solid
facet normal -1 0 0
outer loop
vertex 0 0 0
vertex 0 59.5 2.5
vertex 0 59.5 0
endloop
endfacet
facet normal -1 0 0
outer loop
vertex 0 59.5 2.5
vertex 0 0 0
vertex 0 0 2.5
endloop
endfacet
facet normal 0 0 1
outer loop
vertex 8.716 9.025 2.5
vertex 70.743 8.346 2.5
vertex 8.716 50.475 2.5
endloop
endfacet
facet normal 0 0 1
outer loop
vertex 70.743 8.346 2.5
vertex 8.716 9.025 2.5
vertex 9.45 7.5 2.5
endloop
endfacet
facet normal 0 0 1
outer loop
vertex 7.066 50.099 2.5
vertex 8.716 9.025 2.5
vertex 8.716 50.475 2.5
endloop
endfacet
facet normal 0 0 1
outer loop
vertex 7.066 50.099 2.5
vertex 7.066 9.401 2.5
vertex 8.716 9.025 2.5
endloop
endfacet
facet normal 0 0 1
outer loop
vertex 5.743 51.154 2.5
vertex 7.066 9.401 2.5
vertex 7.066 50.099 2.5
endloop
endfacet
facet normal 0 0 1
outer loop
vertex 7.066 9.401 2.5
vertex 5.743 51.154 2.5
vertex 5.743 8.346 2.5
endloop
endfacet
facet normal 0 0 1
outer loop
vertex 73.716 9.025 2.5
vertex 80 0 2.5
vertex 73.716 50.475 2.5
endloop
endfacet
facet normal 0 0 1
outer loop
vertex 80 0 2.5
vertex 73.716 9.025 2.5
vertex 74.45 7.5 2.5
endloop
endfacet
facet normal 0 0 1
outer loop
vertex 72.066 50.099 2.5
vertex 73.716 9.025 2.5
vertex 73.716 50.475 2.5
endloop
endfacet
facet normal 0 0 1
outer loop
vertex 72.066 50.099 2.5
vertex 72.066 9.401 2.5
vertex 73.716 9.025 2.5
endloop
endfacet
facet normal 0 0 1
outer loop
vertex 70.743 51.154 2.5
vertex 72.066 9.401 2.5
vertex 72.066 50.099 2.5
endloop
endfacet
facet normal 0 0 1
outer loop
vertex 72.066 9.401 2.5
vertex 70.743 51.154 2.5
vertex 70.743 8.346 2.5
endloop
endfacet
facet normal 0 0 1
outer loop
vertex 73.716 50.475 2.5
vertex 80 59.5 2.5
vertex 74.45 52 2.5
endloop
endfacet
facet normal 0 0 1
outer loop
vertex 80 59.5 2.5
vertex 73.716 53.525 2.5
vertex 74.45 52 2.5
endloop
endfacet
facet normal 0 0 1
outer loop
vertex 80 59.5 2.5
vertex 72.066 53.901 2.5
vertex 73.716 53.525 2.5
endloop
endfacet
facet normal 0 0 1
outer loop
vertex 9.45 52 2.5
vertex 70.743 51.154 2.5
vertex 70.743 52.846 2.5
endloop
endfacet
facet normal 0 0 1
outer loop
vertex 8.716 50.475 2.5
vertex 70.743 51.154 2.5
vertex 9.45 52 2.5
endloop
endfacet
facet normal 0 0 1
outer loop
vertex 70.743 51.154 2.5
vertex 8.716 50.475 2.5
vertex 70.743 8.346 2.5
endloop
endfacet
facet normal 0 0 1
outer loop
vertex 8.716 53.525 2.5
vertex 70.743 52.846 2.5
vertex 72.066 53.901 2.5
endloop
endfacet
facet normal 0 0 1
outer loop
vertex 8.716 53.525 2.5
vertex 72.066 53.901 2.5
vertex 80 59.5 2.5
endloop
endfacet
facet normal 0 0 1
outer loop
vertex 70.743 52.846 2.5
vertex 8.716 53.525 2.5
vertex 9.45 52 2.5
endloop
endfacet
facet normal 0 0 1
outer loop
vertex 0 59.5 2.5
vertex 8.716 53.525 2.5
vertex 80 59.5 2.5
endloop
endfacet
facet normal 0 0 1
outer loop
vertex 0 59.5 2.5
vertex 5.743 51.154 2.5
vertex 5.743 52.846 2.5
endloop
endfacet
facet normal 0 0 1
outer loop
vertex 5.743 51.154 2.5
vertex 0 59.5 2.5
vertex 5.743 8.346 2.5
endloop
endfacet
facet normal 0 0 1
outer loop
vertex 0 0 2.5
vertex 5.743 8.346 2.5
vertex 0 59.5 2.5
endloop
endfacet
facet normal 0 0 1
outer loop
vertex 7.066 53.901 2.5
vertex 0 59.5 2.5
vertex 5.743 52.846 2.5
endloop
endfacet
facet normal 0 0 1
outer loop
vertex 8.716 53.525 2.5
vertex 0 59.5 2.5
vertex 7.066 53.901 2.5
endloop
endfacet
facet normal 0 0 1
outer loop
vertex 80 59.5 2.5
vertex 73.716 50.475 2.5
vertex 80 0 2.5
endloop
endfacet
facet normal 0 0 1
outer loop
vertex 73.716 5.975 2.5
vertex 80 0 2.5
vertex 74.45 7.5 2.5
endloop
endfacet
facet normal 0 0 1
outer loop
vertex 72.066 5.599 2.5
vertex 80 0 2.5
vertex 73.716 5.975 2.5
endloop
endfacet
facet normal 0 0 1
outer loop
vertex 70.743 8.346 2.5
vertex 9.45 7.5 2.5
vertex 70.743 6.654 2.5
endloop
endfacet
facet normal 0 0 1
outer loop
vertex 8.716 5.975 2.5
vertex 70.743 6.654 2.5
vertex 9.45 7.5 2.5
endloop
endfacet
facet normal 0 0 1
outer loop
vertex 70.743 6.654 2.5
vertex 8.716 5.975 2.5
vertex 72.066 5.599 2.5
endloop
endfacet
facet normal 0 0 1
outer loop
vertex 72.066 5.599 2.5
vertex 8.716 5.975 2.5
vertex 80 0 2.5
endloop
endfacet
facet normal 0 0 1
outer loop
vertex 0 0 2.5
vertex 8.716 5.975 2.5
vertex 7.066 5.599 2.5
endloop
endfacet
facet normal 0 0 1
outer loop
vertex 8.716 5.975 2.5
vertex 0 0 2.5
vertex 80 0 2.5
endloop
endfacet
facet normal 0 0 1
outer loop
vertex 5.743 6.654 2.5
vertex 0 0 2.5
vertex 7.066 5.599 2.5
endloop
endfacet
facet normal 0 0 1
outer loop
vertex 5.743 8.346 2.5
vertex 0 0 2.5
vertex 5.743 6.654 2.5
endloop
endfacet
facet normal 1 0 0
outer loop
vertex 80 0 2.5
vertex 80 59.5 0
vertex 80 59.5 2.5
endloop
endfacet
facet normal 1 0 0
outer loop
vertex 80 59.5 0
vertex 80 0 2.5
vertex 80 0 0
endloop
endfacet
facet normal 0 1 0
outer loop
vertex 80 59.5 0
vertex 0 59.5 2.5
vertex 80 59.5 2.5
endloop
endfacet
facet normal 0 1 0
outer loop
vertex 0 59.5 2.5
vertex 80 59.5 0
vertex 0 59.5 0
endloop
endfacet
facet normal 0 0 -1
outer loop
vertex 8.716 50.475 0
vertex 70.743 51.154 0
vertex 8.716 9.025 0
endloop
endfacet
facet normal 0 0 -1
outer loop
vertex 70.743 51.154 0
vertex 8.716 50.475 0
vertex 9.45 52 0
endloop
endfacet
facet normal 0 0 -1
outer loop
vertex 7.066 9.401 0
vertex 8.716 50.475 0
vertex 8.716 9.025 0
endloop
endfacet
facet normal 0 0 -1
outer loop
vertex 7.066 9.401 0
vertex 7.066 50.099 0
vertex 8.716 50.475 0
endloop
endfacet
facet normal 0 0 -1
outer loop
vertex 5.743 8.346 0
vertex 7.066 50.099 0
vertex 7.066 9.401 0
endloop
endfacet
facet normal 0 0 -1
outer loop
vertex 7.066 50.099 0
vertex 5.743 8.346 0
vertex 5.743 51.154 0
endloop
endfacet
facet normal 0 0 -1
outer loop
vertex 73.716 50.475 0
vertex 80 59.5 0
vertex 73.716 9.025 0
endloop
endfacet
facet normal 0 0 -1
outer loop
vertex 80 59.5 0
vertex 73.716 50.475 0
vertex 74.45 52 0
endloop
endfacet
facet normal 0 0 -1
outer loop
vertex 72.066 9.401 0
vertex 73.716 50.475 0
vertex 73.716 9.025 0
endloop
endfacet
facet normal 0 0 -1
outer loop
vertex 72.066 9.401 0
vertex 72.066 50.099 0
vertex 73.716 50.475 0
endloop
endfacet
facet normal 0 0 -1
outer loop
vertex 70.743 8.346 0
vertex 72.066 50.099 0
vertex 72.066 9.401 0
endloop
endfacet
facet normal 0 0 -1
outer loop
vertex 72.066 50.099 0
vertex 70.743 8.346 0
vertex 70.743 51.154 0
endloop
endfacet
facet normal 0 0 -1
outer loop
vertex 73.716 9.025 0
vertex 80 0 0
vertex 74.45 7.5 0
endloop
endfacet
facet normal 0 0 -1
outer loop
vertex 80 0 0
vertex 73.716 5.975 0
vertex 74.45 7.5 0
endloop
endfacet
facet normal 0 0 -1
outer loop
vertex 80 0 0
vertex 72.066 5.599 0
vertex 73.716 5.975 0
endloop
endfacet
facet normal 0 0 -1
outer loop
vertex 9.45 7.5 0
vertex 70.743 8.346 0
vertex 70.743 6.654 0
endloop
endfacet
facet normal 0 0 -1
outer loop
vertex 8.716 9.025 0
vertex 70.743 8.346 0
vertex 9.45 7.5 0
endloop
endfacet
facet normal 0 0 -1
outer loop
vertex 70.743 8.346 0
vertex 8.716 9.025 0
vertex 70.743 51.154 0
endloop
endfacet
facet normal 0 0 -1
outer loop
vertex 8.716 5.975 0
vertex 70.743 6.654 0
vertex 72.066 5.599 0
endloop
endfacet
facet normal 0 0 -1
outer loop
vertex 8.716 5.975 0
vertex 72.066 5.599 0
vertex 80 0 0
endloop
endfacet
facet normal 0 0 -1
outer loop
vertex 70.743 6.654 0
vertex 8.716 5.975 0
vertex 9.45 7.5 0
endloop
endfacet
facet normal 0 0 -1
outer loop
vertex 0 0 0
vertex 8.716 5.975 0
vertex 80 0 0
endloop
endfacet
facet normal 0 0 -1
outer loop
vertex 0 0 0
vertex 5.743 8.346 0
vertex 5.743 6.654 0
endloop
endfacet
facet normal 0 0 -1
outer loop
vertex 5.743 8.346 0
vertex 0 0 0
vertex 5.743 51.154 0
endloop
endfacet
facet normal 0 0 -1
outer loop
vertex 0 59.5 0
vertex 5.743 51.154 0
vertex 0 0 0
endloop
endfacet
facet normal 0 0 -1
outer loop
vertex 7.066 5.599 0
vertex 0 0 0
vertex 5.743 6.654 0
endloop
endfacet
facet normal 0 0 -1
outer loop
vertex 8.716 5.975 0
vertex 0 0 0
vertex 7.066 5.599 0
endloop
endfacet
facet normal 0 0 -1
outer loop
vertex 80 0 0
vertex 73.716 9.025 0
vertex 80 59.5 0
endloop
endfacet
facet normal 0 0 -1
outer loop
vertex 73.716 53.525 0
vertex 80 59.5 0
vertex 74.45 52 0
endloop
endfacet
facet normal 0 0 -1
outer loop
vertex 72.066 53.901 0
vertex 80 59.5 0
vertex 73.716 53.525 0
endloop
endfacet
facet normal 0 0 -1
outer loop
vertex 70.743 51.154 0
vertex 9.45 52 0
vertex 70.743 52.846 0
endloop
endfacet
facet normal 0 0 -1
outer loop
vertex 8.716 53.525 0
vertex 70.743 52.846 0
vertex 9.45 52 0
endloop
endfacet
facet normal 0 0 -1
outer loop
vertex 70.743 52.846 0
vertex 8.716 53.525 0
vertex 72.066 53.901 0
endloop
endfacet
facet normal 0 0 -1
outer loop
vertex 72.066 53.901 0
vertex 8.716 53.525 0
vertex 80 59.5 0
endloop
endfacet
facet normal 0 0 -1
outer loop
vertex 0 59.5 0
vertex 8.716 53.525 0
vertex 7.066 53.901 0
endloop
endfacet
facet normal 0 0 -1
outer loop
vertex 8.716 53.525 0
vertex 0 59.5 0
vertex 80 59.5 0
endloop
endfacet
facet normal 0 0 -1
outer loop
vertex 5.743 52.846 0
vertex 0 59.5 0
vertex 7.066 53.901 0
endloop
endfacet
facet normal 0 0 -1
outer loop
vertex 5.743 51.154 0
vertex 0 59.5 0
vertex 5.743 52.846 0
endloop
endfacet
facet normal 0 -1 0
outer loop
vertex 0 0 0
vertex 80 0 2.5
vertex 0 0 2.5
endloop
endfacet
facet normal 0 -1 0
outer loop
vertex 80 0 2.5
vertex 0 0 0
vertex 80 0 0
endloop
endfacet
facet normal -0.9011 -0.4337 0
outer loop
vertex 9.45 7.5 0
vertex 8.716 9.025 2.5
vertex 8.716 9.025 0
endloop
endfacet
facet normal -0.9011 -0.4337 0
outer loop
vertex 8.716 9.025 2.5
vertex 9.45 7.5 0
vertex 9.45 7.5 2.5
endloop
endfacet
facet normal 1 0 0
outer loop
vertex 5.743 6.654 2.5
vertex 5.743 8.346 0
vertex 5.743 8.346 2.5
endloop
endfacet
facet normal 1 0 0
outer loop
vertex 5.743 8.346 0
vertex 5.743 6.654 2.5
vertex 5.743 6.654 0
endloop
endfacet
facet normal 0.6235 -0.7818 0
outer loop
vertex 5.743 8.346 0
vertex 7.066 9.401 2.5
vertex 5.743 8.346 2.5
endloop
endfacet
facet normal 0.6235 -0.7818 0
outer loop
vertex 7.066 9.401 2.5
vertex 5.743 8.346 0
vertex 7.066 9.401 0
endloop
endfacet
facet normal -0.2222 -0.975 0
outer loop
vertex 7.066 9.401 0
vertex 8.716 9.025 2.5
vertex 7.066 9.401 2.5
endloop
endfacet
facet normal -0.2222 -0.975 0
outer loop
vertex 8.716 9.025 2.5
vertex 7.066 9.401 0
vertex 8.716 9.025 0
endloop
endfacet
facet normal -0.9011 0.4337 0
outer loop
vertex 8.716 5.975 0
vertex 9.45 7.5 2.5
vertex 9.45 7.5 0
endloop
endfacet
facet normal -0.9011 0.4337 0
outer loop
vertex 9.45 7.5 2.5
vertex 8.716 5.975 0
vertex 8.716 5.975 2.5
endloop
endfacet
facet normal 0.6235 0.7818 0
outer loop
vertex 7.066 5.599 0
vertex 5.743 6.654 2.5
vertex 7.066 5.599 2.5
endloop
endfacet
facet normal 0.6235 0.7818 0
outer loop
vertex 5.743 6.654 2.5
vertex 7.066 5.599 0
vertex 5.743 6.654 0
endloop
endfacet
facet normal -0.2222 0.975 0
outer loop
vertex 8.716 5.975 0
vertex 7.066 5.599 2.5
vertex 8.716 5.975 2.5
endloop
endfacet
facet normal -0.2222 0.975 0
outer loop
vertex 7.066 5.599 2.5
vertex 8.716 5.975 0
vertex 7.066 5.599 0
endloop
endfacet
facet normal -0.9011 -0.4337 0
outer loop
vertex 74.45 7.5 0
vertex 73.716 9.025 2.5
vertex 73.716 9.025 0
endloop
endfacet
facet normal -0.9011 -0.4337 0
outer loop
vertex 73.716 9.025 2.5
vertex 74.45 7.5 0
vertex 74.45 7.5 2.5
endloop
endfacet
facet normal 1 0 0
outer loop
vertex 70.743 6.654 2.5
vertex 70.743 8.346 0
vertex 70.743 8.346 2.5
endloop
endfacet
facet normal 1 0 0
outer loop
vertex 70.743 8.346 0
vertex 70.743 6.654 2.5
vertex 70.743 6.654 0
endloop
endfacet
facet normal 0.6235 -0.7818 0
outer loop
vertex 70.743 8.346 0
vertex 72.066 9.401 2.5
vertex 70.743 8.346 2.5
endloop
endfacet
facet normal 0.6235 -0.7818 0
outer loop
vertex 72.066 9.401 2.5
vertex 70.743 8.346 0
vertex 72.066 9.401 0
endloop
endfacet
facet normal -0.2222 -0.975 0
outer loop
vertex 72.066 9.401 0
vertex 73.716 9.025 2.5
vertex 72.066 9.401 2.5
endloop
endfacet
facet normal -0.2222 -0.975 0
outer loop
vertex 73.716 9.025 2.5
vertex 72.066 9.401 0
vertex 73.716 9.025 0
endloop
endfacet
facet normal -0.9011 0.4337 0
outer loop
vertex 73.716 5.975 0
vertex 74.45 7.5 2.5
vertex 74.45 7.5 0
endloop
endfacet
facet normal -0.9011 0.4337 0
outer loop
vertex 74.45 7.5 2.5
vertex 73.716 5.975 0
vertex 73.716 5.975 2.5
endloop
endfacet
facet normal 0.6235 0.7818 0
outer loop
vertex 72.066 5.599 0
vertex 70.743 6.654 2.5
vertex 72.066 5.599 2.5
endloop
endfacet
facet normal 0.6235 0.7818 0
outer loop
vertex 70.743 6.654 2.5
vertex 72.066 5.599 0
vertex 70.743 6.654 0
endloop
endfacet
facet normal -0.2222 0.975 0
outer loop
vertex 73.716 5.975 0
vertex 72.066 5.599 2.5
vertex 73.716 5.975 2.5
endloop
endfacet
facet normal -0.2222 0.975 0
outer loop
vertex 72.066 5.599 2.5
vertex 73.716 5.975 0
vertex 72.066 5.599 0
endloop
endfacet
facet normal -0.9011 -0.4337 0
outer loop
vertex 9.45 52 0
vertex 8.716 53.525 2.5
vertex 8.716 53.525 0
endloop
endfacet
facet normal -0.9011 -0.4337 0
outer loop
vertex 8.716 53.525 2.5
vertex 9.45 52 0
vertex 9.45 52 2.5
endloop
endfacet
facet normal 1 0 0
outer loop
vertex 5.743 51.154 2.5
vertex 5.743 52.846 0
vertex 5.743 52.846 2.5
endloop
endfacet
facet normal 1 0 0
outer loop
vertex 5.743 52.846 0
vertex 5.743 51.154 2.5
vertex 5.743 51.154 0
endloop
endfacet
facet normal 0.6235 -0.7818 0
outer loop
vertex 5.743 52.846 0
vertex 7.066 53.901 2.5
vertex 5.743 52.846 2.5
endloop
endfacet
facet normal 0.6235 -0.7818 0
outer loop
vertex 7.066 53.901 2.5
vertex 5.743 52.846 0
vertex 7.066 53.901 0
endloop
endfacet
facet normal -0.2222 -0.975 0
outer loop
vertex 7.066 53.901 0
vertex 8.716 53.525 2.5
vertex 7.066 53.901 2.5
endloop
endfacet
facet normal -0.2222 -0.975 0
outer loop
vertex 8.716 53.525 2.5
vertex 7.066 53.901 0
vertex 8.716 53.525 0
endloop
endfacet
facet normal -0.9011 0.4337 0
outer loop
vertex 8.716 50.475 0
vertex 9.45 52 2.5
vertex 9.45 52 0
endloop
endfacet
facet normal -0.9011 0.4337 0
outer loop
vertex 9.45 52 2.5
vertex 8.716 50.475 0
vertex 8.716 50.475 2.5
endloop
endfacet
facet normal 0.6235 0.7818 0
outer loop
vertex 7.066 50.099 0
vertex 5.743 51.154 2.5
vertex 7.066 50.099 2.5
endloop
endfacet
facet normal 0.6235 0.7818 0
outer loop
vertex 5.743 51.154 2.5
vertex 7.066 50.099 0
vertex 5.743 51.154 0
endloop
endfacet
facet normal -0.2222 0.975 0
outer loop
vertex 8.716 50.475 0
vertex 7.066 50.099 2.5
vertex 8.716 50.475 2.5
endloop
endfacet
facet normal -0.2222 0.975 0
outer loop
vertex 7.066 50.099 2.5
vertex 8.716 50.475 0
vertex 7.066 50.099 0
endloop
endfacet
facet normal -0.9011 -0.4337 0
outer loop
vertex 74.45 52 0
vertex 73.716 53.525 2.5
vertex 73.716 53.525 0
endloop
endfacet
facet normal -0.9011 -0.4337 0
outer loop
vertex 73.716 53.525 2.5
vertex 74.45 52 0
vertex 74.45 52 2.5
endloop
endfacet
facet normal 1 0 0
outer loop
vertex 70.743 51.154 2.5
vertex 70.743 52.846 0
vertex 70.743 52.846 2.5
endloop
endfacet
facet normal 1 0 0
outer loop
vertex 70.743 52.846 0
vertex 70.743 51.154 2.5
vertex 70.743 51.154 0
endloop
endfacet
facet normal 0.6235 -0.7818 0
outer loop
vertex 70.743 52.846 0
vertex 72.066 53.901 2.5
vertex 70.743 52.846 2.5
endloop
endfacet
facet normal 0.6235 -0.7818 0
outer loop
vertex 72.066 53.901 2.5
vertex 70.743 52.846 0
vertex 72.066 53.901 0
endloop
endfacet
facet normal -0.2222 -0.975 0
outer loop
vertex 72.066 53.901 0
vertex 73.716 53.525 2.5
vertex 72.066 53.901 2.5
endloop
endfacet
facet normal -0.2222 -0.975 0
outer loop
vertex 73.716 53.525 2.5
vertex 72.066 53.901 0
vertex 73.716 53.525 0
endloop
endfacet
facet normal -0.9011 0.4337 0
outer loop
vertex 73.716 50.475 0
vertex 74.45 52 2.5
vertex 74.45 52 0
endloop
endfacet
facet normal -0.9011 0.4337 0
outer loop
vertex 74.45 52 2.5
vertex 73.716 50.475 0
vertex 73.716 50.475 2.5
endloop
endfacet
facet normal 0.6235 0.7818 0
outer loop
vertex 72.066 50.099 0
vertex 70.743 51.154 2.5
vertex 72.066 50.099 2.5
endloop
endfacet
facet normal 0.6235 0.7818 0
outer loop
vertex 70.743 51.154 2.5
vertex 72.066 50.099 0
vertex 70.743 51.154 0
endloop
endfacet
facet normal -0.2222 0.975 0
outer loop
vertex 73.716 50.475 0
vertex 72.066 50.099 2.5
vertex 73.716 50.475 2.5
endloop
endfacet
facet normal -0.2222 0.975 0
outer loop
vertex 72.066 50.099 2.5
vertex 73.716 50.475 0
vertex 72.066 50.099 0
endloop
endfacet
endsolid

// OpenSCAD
module hole(
    bracket_width,
    screw_size,
    thickness
) {
    translate([bracket_width / 2, bracket_width / 2, 0]) {
        cylinder(
            h=thickness * 3,
            r1=screw_size / 2,
            r2=screw_size / 2,
            center=true
        );
    }
}

module bottom_plate(
    width,
    length,
    thickness,
    bracket_width,
    screw_size
) {
    difference() {
        cube([width, length, thickness]);
        
        translate([0, 0, 0]) {
            hole(bracket_width, screw_size, thickness);
        }
        
        translate([width - bracket_width, 0, 0]) {
            hole(bracket_width, screw_size, thickness);
        }
        
        translate([0, length - bracket_width, 0]) {
            hole(bracket_width, screw_size, thickness);
        }
        
        translate([width - bracket_width, length - bracket_width, 0]) {
            hole(bracket_width, screw_size, thickness);
        }
    }
}


width = 80;
length = 59.50;
thickness = 2.5;

bracket_width = 15;
screw_size = 3.90;

bottom_plate(
    width,
    length,
    thickness,
    bracket_width,
    screw_size
);
